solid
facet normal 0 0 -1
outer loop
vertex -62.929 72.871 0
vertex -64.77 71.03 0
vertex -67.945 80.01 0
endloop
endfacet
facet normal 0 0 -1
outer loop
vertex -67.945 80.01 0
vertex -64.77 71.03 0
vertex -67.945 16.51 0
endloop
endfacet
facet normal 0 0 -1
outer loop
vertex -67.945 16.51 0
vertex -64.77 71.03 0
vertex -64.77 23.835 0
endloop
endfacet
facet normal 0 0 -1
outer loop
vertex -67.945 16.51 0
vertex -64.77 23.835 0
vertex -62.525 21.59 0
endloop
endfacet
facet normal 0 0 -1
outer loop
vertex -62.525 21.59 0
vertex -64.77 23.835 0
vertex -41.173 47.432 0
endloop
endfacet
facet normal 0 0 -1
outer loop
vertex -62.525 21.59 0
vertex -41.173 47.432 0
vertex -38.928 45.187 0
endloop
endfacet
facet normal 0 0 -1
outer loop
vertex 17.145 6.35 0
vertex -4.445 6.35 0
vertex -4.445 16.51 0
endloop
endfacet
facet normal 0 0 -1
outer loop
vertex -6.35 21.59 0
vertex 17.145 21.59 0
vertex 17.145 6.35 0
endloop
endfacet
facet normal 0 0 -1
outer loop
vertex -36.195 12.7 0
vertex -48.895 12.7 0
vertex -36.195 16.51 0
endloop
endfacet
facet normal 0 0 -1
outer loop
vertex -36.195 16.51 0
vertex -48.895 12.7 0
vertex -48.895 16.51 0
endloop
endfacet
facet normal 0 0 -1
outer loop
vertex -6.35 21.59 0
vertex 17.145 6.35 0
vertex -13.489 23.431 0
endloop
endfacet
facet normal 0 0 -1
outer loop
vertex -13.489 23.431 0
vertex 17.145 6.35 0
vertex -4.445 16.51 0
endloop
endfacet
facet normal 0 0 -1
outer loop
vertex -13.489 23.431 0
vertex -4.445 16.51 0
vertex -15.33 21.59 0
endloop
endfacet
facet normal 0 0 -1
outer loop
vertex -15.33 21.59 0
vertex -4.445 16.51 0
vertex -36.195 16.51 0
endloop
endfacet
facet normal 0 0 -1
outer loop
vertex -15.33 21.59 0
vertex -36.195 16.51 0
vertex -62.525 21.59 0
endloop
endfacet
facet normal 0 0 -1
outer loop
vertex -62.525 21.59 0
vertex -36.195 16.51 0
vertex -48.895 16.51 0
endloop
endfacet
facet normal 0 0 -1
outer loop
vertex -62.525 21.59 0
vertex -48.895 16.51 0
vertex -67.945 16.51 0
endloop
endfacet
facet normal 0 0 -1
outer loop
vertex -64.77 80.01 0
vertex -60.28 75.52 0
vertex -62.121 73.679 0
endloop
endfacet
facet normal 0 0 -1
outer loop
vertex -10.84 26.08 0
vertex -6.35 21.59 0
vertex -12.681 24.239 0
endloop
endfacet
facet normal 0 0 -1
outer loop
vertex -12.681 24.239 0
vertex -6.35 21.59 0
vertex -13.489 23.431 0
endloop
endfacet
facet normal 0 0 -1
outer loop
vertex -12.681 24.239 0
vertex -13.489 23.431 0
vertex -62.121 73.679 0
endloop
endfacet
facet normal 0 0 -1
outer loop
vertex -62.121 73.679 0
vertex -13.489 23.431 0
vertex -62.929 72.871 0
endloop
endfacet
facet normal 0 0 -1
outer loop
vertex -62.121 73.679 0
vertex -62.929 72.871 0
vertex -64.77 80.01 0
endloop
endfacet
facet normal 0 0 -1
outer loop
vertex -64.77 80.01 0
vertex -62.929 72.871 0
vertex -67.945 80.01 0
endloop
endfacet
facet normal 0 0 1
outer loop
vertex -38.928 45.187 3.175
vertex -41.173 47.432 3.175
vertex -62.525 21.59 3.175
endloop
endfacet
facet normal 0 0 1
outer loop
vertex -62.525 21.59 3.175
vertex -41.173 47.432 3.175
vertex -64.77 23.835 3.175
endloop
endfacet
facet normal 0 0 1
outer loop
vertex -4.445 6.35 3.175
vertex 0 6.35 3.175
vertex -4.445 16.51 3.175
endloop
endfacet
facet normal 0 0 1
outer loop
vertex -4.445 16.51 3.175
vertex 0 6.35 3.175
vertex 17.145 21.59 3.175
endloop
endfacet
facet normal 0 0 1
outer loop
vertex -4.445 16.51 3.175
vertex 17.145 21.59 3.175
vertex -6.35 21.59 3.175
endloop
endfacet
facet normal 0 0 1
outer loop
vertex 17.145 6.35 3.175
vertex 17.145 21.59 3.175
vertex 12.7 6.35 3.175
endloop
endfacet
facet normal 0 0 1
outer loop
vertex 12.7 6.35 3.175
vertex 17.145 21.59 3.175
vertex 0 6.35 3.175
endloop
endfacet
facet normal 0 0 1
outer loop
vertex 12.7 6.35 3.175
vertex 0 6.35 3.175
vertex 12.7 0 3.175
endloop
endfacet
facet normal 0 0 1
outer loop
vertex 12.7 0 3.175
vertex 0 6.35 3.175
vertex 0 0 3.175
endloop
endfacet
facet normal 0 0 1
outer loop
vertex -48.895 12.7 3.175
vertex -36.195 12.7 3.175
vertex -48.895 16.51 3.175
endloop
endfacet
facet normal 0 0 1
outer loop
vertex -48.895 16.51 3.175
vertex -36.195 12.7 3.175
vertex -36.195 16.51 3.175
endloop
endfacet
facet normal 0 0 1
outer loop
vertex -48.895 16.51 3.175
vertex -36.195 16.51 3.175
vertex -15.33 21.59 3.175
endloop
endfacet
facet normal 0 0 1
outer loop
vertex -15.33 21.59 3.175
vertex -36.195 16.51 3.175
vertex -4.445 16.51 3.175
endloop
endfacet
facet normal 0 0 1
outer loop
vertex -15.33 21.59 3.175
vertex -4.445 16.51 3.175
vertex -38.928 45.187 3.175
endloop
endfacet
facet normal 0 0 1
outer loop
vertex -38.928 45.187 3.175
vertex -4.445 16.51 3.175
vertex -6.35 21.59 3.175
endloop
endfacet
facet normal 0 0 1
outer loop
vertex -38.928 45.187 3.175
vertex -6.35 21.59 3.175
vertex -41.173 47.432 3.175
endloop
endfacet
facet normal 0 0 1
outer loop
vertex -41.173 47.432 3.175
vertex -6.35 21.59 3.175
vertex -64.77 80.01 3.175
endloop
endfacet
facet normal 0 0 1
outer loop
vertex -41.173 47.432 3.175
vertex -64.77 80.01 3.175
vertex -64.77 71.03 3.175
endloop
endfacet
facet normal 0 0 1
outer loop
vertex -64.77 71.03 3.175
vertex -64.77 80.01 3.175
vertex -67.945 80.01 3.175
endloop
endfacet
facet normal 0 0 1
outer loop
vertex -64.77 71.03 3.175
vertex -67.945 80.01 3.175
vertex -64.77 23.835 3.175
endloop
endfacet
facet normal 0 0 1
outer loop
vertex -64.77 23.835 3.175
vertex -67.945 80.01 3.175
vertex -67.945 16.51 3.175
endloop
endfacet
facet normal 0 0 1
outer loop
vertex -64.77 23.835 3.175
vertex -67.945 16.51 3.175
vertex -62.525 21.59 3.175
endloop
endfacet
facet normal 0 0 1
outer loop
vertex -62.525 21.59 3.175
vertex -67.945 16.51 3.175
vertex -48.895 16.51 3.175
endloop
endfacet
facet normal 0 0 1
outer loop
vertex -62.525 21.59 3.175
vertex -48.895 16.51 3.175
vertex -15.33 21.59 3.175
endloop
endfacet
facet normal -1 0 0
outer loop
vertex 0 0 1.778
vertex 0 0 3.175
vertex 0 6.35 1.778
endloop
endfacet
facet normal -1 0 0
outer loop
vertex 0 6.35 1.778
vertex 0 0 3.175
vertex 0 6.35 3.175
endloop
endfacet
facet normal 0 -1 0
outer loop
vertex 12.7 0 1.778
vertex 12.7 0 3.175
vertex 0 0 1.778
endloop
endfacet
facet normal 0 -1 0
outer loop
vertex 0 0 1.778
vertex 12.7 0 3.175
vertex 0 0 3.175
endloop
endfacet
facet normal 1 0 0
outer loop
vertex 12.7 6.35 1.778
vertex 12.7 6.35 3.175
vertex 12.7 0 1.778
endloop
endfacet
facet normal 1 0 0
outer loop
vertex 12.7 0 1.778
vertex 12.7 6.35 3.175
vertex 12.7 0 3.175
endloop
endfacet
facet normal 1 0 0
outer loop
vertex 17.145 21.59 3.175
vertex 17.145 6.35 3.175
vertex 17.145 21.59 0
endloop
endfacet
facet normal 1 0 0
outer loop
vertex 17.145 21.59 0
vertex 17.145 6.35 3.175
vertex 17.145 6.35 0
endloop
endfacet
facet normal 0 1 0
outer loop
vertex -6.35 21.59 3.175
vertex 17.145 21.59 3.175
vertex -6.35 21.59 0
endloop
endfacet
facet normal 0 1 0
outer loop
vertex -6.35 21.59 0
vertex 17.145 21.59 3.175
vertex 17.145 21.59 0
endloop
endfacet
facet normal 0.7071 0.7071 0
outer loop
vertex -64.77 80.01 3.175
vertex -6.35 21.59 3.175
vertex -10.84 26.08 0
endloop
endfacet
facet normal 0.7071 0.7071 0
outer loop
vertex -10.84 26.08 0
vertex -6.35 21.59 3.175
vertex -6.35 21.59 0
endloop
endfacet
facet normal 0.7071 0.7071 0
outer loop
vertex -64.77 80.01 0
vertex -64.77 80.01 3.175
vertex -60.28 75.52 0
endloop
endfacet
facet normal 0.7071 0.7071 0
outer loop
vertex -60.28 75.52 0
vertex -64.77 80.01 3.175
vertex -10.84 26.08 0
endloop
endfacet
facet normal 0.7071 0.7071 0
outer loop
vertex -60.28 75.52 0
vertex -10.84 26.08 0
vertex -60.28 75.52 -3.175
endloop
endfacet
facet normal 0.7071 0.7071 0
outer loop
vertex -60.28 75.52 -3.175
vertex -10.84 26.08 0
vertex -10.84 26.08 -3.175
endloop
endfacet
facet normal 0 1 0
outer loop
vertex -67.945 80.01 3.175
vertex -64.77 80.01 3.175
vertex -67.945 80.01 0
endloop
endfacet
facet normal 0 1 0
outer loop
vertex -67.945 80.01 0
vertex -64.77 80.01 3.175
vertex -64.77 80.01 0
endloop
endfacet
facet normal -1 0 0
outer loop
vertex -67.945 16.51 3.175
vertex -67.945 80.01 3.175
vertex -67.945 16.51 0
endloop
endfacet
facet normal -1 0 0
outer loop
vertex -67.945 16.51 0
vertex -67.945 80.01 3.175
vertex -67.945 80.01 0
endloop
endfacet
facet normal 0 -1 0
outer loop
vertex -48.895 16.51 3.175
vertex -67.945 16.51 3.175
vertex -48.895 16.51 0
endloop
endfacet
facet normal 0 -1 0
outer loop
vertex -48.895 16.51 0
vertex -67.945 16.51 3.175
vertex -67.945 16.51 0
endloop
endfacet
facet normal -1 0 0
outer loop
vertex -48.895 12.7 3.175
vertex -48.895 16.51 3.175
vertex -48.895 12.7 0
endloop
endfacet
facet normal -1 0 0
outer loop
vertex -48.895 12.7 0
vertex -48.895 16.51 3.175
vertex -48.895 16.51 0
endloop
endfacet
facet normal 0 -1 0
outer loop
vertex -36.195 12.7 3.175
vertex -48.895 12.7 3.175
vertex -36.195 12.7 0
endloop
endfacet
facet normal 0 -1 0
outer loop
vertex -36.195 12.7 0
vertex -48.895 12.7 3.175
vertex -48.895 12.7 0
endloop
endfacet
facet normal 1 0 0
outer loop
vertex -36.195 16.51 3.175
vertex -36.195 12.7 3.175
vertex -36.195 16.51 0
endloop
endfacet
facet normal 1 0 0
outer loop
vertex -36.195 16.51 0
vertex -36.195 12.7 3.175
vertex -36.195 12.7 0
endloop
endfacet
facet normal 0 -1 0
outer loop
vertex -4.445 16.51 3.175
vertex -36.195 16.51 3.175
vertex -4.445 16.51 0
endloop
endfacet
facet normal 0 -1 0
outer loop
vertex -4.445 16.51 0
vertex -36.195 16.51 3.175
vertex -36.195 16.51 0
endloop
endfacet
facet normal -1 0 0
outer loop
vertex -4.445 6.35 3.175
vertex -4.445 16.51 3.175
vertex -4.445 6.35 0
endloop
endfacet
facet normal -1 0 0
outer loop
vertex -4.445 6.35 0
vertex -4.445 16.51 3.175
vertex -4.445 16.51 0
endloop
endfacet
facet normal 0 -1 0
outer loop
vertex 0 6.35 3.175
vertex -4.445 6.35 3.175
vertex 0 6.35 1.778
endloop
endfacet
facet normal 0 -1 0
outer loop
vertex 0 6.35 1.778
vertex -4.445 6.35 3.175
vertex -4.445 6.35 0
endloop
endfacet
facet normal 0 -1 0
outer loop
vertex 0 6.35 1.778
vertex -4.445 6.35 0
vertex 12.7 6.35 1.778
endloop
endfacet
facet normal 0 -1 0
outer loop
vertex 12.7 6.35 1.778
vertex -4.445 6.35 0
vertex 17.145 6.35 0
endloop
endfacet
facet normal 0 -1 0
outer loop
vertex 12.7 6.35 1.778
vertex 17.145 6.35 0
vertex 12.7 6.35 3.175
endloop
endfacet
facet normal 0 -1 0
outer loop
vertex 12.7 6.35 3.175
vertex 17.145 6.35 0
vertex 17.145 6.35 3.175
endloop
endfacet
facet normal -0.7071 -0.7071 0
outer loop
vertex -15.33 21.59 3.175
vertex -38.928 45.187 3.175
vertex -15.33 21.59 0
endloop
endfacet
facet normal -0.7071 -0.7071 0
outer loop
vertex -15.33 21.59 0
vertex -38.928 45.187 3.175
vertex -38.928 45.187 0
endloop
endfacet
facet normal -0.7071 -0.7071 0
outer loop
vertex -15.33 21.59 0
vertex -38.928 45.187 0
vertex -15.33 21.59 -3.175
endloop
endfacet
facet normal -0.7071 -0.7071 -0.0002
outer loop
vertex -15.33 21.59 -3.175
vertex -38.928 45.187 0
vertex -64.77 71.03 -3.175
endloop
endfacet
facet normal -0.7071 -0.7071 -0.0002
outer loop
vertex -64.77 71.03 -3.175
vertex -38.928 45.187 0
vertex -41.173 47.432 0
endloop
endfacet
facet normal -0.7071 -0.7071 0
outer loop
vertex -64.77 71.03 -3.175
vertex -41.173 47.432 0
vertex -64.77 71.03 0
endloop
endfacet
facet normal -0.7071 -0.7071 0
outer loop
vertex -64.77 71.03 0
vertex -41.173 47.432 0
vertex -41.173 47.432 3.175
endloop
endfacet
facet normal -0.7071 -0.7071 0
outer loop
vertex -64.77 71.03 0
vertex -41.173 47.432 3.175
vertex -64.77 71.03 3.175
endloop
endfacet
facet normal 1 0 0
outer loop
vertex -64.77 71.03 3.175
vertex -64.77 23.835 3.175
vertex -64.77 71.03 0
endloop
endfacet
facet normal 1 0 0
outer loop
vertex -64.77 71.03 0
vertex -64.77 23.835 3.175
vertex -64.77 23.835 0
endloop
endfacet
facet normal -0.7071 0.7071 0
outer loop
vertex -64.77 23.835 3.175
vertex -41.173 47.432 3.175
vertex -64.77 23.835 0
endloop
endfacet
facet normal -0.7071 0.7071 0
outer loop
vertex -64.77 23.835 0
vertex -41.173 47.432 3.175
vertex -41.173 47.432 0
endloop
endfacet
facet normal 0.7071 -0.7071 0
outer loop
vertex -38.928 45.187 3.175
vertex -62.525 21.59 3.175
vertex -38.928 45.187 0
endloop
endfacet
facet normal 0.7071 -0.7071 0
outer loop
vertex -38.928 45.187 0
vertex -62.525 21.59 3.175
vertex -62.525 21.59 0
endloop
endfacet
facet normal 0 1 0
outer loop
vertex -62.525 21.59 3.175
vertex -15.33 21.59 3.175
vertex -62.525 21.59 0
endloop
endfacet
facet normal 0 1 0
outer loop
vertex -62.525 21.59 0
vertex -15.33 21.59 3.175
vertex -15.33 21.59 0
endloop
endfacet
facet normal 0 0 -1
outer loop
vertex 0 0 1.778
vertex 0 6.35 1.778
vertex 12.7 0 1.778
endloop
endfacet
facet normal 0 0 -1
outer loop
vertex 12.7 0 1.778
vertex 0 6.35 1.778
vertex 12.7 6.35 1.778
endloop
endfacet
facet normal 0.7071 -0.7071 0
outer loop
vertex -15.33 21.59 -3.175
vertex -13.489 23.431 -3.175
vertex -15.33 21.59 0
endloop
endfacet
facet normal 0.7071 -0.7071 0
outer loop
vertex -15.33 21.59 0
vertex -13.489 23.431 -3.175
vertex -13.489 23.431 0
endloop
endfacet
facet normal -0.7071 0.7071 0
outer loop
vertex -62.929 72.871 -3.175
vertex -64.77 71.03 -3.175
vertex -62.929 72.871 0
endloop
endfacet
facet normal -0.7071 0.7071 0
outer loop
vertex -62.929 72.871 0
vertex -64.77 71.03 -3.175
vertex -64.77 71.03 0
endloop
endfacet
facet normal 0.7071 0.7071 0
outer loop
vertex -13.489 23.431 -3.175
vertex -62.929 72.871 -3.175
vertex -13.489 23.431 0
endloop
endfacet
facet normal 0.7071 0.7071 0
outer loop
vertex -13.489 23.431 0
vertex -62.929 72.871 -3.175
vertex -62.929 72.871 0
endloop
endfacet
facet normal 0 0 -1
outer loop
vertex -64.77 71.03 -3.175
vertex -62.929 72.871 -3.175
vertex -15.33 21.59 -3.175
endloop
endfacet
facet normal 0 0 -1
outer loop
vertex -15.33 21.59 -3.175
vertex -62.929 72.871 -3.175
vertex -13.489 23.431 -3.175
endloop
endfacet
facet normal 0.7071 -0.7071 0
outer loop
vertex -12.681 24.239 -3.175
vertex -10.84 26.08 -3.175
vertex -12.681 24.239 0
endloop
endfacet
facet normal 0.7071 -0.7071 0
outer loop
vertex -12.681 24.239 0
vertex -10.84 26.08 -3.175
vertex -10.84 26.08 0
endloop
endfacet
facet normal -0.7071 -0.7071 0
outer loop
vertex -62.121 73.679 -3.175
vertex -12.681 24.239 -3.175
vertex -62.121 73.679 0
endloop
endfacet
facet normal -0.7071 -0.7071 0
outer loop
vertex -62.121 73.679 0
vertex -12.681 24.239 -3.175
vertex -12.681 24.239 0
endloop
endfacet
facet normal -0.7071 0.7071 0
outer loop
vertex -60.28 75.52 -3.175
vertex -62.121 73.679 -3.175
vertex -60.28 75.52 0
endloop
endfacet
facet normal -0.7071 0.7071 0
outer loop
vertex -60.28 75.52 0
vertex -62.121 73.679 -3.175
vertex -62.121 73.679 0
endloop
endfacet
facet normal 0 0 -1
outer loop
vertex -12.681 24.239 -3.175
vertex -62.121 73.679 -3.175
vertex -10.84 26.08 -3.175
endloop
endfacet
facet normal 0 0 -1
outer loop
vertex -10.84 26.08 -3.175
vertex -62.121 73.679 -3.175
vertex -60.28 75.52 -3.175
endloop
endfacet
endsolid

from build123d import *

# Parameters (mm, degrees)
BOSS_EXTRUDE1_DEPTH = 3.175
SKETCH3_W           = 12.7
SKETCH3_H           = 6.35
CUT_EXTRUDE1_DEPTH  = 1.778
BOSS_EXTRUDE2_DEPTH = 3.175


with BuildPart() as part:
    # Sketch2 → Boss-Extrude1 (new body)
    with BuildSketch(Plane.XY):
        Polygon((0, 0), (12.7, 0), (12.7, 6.35), (17.145, 6.35), (17.145, 21.59), (-6.35, 21.59), (-64.77, 80.01), (-67.945, 80.01), (-67.945, 16.51), (-48.895, 16.51), (-48.895, 12.7), (-36.195, 12.7), (-36.195, 16.51), (-4.445, 16.51), (-4.445, 6.35), (0, 6.35), align=None)
        Polygon((-64.77, 71.029743879), (-64.77, 23.83506403), (-41.172660076, 47.432403955), align=None, mode=Mode.SUBTRACT)
        Polygon((-62.52493597, 21.59), (-15.330256121, 21.59), (-38.927596045, 45.187339924), align=None, mode=Mode.SUBTRACT)
    extrude(amount=BOSS_EXTRUDE1_DEPTH)

    # Sketch3 → Cut-Extrude1 (cut)
    with BuildSketch(Plane(origin=(0, 0, 0), x_dir=(-1, 0, 0), z_dir=(0, 0, -1))):
        with Locations((-6.35, 3.175)):
            Rectangle(SKETCH3_W, SKETCH3_H)
    extrude(amount=-CUT_EXTRUDE1_DEPTH, mode=Mode.SUBTRACT)

    # Sketch4 → Boss-Extrude2 (add)
    with BuildSketch(Plane(origin=(0, 0, 0), x_dir=(-1, 0, 0), z_dir=(0, 0, -1))):
        Polygon((15.330256121, 21.59), (64.77, 71.029743879), (62.929047495, 72.870696384), (13.489303616, 23.430952505), align=None)
        Polygon((10.840128061, 26.080128061), (12.681080565, 24.239175556), (62.120824444, 73.678919435), (60.279871939, 75.519871939), align=None)
    extrude(amount=BOSS_EXTRUDE2_DEPTH)


solid = part.part
